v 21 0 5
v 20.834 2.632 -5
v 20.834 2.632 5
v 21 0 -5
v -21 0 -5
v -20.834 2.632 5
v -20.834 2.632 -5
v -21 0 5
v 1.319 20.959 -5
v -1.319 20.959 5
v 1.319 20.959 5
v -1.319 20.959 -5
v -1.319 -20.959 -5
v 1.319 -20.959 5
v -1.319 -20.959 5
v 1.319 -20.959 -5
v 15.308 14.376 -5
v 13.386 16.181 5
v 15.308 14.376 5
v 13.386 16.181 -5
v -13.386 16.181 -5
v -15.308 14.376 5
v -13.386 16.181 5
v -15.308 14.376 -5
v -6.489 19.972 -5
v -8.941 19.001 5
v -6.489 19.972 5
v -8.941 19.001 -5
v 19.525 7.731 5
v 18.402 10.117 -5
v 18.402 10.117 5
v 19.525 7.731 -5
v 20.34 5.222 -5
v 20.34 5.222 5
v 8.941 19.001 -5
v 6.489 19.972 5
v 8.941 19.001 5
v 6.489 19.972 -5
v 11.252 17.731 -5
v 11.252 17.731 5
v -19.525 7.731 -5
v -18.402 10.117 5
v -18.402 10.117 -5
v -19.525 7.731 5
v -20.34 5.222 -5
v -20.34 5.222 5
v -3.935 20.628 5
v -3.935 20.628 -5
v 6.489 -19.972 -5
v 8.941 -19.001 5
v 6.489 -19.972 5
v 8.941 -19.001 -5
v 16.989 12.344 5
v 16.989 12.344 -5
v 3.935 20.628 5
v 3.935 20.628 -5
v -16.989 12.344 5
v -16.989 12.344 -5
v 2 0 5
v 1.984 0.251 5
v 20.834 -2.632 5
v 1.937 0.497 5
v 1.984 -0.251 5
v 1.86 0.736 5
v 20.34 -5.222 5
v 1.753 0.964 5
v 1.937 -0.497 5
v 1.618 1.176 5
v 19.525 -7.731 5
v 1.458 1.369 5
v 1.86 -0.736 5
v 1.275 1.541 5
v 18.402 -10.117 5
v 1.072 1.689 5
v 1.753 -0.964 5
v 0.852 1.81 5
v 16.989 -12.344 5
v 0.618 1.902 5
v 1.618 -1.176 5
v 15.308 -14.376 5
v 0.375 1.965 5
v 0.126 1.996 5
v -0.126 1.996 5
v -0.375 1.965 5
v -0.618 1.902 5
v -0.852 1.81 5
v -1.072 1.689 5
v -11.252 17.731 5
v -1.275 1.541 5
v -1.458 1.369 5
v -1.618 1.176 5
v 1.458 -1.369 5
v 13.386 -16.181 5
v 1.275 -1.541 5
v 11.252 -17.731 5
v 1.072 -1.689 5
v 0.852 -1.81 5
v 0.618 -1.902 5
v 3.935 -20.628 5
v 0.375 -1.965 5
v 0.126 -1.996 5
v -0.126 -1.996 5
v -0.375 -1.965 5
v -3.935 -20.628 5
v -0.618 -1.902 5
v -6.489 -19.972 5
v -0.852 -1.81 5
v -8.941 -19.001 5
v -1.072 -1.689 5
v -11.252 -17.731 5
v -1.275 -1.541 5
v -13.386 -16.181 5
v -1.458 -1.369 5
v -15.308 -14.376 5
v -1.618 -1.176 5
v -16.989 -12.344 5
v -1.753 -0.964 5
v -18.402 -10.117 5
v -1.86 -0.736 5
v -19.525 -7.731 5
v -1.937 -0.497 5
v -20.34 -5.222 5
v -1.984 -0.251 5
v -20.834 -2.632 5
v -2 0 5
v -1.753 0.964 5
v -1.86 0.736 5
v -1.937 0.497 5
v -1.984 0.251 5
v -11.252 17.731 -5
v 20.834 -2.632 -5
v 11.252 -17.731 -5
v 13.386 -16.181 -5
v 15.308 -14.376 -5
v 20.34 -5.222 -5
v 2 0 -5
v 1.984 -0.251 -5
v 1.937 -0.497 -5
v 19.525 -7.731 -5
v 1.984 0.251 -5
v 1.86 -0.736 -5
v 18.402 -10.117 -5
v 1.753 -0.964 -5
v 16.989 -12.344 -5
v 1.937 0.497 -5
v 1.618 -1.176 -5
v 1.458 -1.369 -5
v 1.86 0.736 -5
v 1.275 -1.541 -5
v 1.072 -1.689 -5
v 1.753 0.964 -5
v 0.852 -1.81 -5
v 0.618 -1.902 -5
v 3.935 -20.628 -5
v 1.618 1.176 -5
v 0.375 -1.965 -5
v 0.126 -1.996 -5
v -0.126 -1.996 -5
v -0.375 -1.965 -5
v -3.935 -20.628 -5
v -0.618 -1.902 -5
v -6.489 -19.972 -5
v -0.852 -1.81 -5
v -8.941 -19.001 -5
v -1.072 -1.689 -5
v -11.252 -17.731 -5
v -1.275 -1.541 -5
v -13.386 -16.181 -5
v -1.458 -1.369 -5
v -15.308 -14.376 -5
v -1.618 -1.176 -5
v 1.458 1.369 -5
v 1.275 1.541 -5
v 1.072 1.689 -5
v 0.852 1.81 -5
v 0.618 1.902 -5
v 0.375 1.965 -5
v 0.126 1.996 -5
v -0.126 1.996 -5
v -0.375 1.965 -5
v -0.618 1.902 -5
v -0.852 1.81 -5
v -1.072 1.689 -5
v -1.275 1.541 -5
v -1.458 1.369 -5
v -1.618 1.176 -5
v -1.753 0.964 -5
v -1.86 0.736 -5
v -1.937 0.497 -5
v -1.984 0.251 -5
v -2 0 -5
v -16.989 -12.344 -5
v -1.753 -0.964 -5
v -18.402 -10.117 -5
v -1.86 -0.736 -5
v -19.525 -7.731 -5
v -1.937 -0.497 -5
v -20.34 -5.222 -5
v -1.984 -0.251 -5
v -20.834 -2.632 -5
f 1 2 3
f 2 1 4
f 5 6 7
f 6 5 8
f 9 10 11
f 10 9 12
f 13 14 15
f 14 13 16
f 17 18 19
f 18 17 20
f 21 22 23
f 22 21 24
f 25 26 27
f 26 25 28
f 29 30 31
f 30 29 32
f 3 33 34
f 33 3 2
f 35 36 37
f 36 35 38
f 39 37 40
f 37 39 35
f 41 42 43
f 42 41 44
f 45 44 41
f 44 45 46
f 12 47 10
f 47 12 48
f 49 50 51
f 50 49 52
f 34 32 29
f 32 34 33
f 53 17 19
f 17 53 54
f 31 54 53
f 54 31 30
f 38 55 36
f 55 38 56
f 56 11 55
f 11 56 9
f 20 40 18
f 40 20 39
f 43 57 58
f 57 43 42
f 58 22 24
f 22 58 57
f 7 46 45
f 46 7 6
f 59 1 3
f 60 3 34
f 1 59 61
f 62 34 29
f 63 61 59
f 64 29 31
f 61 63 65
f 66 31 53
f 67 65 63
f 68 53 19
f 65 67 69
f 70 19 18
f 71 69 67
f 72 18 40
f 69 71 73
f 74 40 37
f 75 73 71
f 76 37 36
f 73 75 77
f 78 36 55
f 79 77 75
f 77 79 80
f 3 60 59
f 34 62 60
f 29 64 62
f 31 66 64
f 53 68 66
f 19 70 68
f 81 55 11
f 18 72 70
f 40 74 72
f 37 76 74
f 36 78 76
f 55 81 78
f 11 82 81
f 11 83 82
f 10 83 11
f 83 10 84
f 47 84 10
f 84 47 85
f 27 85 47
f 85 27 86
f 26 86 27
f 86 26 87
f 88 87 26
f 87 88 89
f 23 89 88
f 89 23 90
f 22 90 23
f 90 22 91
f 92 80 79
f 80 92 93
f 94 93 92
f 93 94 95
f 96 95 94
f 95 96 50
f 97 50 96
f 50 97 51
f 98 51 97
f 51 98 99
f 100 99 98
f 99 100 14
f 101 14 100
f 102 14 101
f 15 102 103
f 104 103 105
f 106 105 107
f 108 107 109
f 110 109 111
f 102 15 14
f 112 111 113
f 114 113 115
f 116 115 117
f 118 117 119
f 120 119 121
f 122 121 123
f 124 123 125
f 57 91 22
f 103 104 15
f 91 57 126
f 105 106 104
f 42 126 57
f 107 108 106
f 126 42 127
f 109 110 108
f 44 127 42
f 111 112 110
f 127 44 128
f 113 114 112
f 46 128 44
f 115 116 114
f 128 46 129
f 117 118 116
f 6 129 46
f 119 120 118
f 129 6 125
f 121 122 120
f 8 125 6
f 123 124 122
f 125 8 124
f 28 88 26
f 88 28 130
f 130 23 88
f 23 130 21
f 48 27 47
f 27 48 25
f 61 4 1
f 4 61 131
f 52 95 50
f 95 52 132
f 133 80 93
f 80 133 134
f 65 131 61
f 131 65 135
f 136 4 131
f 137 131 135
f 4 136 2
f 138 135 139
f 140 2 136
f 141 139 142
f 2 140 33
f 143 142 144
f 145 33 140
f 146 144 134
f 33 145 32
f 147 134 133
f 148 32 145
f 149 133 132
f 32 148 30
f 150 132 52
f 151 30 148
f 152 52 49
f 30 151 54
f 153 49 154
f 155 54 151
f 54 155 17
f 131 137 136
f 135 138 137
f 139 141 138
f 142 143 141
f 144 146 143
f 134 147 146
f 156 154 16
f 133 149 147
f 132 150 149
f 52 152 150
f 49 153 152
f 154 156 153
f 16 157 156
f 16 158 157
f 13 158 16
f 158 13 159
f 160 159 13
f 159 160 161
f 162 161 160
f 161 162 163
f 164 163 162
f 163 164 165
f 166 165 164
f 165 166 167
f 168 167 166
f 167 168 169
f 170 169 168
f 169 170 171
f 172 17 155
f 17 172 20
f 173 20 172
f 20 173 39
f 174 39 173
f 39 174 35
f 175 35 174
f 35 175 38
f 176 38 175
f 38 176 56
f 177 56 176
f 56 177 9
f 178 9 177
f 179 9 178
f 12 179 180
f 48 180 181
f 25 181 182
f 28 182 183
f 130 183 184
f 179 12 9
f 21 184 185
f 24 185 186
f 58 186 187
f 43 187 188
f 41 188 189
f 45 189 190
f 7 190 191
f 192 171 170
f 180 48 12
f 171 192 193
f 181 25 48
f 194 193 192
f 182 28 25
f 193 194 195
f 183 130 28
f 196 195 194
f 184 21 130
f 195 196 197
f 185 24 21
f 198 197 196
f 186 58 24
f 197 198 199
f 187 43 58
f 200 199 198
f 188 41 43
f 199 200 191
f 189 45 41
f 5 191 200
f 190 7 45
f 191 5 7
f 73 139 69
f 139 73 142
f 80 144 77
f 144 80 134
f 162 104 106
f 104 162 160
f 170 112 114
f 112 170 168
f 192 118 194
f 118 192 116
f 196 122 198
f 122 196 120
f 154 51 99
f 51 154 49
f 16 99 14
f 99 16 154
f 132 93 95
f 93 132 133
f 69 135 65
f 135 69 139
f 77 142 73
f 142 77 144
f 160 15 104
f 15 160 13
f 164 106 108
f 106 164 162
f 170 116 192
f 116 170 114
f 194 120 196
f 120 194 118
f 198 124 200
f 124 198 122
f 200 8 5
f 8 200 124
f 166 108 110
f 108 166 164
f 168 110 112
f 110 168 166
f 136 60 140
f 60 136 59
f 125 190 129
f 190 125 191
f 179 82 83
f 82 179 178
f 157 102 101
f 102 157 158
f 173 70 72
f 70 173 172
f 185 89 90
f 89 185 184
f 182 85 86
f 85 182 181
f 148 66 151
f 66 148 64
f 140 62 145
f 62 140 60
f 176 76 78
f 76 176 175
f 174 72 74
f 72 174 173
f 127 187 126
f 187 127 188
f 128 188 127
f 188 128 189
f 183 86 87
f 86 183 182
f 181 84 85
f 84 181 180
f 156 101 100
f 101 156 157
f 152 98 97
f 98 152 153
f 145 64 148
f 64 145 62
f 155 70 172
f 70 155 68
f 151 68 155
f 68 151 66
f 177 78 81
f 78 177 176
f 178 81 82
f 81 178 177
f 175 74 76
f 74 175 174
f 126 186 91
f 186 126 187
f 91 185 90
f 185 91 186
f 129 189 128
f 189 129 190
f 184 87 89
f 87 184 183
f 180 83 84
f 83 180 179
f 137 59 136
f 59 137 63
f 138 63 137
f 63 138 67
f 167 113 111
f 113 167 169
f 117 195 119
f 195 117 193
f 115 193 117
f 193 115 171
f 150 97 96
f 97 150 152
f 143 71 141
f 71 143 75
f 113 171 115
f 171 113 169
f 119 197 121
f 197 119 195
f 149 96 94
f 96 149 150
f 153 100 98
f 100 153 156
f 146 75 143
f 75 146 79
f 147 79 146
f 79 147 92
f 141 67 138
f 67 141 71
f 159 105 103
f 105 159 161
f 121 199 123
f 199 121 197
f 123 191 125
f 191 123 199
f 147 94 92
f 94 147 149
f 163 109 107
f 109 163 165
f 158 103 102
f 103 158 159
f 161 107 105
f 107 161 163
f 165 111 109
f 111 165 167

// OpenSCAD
$fn = 50;


difference() {
	union() {
		translate(v = [0, 0, -5.0000000000]) {
			cylinder(h = 10, r = 21.0000000000);
		}
	}
	union() {
		translate(v = [0, 0, -100.0000000000]) {
			cylinder(h = 200, r = 2);
		}
	}
}
